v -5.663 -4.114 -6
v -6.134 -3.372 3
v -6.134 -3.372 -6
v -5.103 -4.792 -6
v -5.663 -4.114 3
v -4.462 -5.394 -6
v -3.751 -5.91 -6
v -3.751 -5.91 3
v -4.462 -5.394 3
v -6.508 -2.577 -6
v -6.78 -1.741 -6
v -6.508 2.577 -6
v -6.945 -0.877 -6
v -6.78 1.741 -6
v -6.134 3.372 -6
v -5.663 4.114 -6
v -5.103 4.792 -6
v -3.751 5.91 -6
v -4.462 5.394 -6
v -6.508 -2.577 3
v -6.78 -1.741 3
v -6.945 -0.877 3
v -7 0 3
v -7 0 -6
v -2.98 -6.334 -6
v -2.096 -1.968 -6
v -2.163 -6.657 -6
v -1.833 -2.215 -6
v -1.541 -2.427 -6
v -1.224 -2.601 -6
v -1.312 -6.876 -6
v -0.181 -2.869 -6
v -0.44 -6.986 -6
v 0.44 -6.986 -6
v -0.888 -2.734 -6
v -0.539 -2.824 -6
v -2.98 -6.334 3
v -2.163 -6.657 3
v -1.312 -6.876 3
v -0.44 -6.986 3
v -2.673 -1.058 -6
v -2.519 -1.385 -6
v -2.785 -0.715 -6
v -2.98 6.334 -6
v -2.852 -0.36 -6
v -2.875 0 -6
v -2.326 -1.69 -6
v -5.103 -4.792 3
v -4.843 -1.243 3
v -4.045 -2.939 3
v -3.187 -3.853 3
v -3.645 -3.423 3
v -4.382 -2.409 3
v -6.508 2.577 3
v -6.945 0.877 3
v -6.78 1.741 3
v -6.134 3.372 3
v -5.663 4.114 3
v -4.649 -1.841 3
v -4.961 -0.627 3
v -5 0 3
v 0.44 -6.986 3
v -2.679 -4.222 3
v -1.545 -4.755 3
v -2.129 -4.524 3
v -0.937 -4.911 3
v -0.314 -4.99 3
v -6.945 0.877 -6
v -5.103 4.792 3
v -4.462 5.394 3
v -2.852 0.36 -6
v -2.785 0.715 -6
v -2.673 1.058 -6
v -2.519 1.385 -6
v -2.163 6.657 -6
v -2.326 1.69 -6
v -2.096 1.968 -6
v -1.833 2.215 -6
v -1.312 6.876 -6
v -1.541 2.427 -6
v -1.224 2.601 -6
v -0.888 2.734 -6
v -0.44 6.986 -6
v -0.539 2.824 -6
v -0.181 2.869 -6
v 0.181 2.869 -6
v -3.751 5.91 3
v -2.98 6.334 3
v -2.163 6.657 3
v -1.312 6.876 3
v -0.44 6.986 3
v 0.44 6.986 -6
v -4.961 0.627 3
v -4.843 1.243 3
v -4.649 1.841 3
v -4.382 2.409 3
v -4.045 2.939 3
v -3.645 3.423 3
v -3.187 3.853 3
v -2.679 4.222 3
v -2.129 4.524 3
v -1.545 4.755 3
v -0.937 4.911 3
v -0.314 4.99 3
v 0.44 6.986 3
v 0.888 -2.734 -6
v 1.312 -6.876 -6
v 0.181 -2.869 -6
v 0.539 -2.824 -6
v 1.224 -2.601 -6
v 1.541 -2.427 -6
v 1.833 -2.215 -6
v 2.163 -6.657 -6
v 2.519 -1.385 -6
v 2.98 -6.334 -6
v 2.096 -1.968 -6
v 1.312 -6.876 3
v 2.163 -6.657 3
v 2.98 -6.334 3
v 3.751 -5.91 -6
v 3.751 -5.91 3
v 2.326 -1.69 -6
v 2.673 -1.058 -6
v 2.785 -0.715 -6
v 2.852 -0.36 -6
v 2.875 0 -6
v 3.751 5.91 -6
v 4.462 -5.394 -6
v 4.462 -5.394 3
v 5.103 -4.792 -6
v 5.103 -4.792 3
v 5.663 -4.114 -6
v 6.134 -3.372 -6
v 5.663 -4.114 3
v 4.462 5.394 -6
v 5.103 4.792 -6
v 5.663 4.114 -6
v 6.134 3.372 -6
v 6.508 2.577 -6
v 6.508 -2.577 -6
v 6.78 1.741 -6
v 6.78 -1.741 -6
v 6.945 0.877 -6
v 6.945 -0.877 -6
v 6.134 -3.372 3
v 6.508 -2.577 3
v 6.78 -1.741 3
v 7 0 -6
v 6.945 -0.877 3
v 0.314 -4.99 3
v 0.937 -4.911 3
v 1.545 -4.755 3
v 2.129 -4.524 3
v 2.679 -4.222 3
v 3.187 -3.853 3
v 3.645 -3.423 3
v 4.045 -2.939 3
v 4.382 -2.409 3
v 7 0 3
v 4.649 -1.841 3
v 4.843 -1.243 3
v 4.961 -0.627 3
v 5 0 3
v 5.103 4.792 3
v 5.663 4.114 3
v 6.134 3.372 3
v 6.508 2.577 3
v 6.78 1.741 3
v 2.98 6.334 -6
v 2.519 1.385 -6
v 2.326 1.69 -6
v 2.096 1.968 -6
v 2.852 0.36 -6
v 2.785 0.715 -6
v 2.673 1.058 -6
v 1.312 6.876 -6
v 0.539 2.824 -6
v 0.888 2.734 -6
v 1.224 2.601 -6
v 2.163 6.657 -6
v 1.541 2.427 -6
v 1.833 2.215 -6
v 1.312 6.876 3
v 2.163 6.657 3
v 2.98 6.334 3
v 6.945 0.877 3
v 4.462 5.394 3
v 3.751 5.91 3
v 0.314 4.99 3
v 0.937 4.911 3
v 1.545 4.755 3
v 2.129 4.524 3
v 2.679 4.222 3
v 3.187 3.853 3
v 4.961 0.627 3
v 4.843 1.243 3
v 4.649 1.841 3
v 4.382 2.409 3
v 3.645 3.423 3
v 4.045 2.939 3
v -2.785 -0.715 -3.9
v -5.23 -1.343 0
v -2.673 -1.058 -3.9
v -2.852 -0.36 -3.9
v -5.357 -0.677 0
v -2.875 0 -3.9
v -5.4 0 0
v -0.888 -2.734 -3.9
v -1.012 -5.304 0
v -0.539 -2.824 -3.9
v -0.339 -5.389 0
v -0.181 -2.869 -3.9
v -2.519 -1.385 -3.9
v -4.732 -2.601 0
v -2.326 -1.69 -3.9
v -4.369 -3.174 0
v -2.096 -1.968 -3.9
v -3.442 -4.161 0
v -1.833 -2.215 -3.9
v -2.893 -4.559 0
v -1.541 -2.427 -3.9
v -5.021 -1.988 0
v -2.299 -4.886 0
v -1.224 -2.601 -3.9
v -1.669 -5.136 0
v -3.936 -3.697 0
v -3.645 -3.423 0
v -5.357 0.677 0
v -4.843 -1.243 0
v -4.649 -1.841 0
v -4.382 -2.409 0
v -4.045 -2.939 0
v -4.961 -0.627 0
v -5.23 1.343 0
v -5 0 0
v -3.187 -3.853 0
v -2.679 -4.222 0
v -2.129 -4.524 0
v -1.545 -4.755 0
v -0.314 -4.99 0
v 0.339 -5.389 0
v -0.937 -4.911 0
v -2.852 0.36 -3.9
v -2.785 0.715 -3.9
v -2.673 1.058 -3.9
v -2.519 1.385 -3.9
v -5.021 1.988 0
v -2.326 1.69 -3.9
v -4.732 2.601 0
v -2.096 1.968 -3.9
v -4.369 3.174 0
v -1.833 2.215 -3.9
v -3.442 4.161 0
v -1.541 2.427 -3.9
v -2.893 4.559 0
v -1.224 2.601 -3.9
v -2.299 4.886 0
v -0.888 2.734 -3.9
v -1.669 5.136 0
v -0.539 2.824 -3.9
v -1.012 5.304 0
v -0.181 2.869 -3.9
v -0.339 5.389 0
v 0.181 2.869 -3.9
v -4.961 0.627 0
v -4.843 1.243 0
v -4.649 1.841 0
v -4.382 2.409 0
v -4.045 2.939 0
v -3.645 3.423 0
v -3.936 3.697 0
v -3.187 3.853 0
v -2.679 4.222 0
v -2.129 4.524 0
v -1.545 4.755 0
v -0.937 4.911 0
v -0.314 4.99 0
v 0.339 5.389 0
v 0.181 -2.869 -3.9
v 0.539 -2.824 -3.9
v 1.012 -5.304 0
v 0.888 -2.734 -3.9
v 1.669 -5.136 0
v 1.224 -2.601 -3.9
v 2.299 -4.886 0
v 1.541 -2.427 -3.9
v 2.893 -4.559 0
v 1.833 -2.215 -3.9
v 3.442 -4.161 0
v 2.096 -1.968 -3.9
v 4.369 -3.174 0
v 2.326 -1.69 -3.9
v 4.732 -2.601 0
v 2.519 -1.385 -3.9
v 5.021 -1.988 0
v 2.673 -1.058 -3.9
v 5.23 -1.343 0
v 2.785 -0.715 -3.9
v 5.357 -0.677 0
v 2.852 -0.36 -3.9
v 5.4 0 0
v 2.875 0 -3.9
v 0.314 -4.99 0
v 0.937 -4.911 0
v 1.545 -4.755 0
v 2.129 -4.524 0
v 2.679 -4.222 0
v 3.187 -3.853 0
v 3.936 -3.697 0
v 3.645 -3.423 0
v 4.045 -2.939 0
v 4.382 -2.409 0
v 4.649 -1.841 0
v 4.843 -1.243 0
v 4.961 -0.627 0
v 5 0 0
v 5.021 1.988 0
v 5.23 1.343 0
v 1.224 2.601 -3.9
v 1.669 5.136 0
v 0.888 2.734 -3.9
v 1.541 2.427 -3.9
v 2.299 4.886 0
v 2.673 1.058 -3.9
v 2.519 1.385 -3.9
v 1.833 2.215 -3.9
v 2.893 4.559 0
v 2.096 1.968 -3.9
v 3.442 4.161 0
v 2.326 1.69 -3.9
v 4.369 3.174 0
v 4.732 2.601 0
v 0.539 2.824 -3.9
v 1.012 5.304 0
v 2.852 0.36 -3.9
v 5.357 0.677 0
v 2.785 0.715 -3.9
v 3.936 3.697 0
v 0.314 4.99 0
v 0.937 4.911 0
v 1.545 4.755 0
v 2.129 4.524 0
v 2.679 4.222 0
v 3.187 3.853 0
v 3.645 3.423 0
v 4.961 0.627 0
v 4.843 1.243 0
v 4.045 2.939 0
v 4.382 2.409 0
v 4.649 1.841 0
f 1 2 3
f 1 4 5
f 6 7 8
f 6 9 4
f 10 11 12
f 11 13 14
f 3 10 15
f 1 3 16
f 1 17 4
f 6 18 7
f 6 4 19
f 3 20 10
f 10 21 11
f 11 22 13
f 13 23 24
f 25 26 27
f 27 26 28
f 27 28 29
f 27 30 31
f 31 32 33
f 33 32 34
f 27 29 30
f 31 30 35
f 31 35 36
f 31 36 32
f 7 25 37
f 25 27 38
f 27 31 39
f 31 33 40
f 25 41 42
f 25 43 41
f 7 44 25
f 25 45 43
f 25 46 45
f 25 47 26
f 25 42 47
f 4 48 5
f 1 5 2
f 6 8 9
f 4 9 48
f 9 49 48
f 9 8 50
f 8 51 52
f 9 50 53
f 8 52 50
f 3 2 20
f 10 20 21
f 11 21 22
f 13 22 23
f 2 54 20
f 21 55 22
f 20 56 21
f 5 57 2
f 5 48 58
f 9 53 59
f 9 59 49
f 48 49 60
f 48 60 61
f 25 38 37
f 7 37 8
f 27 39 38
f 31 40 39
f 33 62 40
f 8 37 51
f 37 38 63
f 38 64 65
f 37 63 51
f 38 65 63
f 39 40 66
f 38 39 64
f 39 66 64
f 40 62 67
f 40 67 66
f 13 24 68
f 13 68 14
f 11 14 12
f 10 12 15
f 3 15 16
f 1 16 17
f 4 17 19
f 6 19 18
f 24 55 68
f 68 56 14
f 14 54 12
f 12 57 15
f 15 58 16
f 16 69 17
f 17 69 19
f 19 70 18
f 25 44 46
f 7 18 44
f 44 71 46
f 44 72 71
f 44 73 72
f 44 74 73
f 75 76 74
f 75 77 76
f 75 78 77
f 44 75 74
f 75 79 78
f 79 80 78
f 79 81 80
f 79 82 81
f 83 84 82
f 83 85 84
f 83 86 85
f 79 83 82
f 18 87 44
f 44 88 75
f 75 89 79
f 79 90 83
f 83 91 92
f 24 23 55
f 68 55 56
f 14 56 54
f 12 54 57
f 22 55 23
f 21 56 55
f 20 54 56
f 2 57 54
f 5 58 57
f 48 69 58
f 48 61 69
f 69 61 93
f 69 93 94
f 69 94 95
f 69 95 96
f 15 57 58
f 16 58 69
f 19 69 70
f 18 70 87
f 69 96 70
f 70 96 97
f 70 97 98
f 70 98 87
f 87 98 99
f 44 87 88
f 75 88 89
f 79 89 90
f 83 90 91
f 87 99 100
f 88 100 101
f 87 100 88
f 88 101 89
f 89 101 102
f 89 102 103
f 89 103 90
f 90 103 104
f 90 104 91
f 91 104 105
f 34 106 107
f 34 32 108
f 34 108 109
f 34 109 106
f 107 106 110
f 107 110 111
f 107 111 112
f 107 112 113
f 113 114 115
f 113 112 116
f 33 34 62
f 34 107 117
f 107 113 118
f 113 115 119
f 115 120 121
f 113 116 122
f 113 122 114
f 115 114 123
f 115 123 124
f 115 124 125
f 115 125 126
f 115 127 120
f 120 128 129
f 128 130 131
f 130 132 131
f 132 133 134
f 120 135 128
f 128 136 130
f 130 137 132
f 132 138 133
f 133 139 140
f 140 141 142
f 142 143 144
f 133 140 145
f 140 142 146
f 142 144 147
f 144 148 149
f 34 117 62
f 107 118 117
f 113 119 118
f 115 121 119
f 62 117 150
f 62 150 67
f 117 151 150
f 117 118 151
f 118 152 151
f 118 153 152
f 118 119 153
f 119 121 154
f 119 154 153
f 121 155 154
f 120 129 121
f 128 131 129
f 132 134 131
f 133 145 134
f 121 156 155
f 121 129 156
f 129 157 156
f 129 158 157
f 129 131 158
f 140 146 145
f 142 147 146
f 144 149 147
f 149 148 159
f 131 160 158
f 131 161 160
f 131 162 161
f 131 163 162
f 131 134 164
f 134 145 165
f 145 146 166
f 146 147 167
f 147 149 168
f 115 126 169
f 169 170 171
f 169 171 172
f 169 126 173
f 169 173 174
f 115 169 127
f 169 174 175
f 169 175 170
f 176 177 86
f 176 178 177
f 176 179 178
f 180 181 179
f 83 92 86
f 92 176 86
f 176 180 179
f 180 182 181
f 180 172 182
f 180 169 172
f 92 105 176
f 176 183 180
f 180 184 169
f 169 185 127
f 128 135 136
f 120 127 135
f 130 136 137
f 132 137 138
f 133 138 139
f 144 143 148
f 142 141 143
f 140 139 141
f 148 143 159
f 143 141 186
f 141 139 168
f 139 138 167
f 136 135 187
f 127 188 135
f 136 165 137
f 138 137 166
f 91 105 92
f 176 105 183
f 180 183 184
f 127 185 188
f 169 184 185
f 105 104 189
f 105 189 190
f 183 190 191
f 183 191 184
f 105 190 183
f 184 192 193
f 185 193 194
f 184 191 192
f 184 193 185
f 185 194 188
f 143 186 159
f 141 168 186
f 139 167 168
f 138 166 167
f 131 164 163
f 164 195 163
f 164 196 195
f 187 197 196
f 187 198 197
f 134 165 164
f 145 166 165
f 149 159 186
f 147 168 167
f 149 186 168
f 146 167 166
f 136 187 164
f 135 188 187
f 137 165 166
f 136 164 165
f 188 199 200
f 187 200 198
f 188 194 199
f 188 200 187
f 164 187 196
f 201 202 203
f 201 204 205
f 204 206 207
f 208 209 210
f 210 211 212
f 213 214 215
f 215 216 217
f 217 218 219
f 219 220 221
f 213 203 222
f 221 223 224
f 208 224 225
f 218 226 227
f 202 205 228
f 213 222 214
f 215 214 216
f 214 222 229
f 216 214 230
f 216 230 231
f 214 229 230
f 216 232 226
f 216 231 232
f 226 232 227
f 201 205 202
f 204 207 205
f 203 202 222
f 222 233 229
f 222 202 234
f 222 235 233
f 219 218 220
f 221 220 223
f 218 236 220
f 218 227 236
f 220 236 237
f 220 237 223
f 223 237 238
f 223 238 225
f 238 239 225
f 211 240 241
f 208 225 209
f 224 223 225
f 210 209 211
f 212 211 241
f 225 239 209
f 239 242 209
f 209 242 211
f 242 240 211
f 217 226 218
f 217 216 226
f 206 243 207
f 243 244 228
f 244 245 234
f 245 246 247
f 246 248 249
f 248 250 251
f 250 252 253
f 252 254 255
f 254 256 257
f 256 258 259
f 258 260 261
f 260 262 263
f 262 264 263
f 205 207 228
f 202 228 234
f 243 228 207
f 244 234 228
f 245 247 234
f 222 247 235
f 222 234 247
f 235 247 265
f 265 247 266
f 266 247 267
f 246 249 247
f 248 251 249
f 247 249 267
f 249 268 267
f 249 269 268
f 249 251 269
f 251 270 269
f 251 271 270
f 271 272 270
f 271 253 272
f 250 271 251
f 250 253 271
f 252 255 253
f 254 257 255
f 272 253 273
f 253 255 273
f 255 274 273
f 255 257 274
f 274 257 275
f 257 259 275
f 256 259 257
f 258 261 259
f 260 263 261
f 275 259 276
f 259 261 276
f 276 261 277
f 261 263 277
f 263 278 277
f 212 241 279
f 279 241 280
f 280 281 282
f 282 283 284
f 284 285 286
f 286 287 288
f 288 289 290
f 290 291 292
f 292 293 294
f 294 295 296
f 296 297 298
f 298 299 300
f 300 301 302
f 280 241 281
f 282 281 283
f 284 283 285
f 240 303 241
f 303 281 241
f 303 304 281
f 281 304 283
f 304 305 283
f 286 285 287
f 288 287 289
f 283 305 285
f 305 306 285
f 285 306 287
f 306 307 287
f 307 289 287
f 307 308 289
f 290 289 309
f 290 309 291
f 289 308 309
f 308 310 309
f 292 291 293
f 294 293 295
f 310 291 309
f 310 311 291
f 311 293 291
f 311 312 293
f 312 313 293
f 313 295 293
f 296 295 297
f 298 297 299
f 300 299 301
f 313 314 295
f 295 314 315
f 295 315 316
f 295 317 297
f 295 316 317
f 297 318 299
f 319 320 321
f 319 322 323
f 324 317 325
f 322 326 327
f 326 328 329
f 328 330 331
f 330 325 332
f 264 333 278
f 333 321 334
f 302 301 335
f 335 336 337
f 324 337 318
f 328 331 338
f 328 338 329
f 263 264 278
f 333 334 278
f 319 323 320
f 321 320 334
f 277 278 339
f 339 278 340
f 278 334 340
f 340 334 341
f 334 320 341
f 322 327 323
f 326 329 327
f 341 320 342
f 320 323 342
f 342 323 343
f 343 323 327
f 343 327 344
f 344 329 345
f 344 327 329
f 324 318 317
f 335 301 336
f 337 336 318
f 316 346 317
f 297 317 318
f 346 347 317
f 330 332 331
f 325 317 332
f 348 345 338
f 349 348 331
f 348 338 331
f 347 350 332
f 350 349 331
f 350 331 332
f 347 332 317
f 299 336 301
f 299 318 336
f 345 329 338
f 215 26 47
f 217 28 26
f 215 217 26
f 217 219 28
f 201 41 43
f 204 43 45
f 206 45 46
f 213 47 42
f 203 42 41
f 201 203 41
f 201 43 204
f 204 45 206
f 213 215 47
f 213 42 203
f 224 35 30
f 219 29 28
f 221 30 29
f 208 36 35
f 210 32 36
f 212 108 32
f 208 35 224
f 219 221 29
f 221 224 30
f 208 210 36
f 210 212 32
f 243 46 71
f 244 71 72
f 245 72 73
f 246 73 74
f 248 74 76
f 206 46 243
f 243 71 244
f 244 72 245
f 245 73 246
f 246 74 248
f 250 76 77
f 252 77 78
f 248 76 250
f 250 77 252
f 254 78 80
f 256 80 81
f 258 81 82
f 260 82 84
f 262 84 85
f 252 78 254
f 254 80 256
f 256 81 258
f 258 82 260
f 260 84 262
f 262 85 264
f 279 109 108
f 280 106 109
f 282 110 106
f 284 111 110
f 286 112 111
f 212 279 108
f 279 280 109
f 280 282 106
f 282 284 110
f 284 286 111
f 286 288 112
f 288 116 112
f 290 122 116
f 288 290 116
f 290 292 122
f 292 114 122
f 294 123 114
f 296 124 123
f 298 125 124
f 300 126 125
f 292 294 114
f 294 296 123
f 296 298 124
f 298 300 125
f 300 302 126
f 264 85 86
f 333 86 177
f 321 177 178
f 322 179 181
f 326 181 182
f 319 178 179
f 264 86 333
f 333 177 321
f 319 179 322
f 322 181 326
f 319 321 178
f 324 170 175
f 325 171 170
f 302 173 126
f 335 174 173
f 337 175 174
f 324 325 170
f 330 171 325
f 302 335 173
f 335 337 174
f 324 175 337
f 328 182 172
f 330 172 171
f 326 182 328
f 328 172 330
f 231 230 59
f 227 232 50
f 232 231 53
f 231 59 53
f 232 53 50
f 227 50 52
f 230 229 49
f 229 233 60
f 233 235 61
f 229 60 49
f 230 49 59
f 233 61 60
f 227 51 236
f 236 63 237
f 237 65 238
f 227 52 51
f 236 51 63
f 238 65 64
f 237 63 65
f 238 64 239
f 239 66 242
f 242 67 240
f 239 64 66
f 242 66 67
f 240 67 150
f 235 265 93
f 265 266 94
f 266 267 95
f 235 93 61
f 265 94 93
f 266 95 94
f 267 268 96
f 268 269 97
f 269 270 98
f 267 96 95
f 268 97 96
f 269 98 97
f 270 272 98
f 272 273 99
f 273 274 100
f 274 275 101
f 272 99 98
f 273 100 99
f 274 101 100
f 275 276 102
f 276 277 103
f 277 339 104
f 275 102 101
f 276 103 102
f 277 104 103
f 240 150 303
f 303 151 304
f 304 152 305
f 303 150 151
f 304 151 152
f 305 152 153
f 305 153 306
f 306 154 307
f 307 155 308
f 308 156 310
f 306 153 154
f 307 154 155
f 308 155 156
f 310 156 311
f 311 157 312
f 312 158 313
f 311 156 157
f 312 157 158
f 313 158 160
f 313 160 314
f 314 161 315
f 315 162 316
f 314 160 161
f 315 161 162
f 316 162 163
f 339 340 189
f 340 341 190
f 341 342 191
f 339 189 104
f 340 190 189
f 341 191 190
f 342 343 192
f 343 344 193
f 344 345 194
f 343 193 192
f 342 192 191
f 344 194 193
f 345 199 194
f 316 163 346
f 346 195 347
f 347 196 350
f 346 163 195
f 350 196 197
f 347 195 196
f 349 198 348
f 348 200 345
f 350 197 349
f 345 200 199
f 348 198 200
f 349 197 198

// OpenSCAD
$fn = 50;

difference() {
	union() {
		translate(v = [0, 0, -6.0]) {
			cylinder(h = 9, r = 7.0);
		}
		#translate(v = [0, 0, -9.0]) {
			cylinder(h = 9, r = 2.875);
		}
	}
	union() {
		translate(v = [0, 0, 0]) {
			rotate(a = [0, 0, 0]) {
				difference() {
					union() {
						translate(v = [0, 0, -9.0]) {
							cylinder(h = 9, r = 2.6);
						}
						translate(v = [0, 0, -3.9]) {
							cylinder(h = 3.9, r1 = 2.875, r2 = 5.4);
						}
						translate(v = [0, 0, -9.0]) {
							cylinder(h = 9, r = 2.875);
						}
						translate(v = [0, 0, -9.0]) {
							cylinder(h = 9, r = 2.6);
						}
					}
					union();
				}
			}
		}
		#cylinder(h = 3, r = 5.0);
	}
}
